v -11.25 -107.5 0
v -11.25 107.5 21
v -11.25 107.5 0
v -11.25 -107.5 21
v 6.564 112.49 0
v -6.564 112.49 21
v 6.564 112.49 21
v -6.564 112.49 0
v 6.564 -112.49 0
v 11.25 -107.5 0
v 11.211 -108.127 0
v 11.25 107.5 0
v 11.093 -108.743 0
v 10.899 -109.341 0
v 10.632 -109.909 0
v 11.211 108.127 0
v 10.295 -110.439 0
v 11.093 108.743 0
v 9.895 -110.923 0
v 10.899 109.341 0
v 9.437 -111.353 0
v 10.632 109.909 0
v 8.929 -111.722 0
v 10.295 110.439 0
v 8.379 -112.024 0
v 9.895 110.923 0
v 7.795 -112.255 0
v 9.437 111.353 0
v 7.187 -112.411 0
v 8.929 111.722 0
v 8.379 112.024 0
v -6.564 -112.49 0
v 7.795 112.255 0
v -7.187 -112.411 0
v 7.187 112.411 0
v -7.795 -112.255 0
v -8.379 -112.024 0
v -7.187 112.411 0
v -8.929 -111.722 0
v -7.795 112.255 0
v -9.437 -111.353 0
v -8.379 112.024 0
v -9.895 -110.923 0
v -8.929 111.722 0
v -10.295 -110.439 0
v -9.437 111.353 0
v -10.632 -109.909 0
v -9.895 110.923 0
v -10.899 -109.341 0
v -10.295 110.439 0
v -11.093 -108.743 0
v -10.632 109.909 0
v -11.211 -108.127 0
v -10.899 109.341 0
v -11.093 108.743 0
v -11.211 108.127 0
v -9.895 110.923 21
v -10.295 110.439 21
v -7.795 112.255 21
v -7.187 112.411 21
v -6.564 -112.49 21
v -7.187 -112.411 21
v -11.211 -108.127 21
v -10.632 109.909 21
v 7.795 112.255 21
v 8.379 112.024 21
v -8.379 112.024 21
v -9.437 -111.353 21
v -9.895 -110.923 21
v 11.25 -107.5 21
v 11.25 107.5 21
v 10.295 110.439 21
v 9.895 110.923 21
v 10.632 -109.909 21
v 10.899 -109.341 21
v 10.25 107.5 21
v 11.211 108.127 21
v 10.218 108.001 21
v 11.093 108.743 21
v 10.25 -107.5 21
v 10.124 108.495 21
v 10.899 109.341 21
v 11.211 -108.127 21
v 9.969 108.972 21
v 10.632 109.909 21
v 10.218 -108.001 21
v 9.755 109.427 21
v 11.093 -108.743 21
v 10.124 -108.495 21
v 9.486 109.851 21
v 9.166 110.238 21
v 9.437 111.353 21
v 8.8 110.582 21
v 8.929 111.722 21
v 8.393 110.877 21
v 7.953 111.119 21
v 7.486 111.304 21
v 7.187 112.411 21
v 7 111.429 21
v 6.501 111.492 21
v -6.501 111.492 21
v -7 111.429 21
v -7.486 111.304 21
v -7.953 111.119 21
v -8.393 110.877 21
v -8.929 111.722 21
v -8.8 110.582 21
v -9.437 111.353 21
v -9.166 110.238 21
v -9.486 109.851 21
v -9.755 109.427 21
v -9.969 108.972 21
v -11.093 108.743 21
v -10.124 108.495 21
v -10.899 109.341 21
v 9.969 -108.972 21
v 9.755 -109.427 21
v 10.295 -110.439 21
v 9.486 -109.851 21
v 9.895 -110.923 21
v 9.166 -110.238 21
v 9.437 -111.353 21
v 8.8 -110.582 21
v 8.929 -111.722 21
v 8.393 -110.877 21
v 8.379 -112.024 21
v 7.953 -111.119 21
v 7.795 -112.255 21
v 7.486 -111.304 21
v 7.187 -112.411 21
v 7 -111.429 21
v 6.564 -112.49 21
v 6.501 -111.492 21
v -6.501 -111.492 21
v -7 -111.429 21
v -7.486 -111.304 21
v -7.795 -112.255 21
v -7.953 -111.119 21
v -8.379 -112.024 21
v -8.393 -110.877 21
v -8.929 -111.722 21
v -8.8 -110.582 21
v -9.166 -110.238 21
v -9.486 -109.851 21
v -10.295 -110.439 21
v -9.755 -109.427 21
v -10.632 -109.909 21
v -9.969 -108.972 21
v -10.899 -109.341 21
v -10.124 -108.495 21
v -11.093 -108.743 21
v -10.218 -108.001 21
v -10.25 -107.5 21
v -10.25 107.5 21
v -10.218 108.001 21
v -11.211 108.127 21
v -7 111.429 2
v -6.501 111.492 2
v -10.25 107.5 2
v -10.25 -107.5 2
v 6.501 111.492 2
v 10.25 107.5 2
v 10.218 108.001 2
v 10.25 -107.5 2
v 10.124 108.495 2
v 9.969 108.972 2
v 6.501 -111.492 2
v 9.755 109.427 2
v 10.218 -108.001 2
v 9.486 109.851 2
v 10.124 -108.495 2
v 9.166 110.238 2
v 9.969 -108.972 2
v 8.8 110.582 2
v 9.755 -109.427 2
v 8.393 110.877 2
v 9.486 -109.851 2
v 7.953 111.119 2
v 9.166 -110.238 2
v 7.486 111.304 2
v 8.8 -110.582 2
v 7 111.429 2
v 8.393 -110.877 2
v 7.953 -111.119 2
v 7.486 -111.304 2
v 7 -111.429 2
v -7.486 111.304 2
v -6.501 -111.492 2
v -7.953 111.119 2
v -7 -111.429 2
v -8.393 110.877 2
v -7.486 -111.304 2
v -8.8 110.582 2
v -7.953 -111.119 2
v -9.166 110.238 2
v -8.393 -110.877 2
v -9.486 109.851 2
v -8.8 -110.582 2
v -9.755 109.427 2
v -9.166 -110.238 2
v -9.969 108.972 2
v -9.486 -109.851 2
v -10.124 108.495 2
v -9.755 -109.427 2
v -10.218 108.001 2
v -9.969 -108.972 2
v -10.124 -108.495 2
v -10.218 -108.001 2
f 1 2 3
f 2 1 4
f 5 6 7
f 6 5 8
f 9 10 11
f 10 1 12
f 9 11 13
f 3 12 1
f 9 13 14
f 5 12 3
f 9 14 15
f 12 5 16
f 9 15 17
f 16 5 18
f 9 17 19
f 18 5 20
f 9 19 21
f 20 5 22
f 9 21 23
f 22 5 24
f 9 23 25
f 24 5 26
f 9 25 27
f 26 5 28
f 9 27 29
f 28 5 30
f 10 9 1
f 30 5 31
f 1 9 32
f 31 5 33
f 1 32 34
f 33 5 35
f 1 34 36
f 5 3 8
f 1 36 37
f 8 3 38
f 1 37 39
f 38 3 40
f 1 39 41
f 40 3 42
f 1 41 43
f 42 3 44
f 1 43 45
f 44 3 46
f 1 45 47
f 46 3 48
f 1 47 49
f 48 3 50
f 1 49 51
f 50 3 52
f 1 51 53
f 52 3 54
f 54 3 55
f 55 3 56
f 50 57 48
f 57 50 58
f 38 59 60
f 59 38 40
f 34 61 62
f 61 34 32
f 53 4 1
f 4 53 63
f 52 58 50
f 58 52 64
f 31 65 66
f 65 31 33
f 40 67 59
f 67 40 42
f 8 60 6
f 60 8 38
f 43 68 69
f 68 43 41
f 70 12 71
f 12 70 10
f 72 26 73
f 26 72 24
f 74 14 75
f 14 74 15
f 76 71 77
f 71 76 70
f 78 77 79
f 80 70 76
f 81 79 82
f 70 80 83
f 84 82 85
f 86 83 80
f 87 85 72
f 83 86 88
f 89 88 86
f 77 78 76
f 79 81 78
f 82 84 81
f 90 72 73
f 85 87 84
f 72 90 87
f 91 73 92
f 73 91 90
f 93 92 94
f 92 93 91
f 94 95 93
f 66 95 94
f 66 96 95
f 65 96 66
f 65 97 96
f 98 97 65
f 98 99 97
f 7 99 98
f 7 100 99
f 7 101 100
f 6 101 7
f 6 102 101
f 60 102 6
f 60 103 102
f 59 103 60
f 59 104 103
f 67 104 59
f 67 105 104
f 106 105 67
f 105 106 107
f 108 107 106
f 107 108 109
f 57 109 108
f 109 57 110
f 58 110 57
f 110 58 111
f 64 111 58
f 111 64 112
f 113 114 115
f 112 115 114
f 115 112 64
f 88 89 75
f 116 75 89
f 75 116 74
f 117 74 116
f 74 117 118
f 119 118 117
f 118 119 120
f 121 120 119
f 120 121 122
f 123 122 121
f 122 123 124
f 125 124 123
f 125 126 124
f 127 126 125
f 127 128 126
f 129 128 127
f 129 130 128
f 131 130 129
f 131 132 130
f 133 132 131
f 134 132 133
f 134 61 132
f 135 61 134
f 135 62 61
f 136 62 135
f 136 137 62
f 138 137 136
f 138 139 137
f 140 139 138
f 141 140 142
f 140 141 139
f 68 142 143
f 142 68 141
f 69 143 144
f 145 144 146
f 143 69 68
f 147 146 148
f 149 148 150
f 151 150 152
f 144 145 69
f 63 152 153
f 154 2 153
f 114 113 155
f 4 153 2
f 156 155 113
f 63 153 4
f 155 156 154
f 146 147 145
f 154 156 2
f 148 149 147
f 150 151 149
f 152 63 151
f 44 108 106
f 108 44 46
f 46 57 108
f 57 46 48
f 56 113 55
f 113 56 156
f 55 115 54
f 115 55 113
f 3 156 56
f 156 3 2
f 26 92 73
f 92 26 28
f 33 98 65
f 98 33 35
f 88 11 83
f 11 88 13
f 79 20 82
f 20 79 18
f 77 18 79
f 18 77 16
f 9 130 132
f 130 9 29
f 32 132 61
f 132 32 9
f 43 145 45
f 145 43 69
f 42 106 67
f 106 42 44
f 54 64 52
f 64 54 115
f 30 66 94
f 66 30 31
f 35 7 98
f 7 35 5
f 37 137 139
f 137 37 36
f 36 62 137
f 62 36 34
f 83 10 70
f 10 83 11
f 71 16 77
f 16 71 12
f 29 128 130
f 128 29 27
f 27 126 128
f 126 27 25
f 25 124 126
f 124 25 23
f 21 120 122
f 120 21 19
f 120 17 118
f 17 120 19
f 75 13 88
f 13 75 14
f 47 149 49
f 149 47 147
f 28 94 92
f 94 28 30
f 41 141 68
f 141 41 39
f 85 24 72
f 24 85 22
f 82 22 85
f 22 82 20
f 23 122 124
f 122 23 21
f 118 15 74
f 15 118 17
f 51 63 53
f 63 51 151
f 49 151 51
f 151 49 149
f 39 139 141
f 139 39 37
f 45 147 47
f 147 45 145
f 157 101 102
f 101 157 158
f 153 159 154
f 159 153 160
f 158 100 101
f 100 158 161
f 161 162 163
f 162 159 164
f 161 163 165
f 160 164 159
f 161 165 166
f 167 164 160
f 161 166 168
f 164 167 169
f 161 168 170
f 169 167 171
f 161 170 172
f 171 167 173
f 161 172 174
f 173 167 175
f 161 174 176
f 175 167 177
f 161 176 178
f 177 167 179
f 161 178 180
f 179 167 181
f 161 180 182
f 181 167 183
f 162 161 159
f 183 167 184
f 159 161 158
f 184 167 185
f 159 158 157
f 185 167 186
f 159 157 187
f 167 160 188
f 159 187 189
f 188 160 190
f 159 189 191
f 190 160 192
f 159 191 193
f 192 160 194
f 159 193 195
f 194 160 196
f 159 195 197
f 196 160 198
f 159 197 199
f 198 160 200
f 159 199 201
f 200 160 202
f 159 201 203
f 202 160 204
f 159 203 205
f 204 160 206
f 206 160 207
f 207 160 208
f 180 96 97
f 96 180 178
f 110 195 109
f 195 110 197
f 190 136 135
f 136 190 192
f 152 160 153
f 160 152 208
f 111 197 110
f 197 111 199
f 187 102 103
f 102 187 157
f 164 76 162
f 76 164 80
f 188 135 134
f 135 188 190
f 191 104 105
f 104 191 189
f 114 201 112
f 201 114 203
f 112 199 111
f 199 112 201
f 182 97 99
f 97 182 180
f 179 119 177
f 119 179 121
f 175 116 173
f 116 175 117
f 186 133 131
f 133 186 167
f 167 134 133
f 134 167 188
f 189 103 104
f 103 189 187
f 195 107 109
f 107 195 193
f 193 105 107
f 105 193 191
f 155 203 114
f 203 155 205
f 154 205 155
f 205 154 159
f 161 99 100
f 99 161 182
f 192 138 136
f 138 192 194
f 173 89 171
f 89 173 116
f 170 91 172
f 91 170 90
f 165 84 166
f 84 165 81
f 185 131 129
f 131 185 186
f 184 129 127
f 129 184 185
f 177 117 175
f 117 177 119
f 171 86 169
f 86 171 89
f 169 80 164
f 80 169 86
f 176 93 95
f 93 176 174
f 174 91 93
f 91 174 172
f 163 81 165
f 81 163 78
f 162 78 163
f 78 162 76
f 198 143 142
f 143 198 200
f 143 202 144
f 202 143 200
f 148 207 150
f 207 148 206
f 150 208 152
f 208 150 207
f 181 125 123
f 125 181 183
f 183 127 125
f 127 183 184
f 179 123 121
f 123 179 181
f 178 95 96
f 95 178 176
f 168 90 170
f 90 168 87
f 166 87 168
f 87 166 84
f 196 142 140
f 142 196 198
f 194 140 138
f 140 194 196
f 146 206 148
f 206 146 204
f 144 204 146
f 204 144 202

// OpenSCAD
$fn = 50;


difference() {
	union() {
		hull() {
			translate(v = [-6.2500000000, 107.5000000000, 0]) {
				cylinder(h = 21, r = 5);
			}
			translate(v = [6.2500000000, 107.5000000000, 0]) {
				cylinder(h = 21, r = 5);
			}
			translate(v = [-6.2500000000, -107.5000000000, 0]) {
				cylinder(h = 21, r = 5);
			}
			translate(v = [6.2500000000, -107.5000000000, 0]) {
				cylinder(h = 21, r = 5);
			}
		}
	}
	union() {
		translate(v = [0, 0, 2]) {
			hull() {
				translate(v = [-6.2500000000, 107.5000000000, 0]) {
					cylinder(h = 19, r = 4);
				}
				translate(v = [6.2500000000, 107.5000000000, 0]) {
					cylinder(h = 19, r = 4);
				}
				translate(v = [-6.2500000000, -107.5000000000, 0]) {
					cylinder(h = 19, r = 4);
				}
				translate(v = [6.2500000000, -107.5000000000, 0]) {
					cylinder(h = 19, r = 4);
				}
			}
		}
	}
}
